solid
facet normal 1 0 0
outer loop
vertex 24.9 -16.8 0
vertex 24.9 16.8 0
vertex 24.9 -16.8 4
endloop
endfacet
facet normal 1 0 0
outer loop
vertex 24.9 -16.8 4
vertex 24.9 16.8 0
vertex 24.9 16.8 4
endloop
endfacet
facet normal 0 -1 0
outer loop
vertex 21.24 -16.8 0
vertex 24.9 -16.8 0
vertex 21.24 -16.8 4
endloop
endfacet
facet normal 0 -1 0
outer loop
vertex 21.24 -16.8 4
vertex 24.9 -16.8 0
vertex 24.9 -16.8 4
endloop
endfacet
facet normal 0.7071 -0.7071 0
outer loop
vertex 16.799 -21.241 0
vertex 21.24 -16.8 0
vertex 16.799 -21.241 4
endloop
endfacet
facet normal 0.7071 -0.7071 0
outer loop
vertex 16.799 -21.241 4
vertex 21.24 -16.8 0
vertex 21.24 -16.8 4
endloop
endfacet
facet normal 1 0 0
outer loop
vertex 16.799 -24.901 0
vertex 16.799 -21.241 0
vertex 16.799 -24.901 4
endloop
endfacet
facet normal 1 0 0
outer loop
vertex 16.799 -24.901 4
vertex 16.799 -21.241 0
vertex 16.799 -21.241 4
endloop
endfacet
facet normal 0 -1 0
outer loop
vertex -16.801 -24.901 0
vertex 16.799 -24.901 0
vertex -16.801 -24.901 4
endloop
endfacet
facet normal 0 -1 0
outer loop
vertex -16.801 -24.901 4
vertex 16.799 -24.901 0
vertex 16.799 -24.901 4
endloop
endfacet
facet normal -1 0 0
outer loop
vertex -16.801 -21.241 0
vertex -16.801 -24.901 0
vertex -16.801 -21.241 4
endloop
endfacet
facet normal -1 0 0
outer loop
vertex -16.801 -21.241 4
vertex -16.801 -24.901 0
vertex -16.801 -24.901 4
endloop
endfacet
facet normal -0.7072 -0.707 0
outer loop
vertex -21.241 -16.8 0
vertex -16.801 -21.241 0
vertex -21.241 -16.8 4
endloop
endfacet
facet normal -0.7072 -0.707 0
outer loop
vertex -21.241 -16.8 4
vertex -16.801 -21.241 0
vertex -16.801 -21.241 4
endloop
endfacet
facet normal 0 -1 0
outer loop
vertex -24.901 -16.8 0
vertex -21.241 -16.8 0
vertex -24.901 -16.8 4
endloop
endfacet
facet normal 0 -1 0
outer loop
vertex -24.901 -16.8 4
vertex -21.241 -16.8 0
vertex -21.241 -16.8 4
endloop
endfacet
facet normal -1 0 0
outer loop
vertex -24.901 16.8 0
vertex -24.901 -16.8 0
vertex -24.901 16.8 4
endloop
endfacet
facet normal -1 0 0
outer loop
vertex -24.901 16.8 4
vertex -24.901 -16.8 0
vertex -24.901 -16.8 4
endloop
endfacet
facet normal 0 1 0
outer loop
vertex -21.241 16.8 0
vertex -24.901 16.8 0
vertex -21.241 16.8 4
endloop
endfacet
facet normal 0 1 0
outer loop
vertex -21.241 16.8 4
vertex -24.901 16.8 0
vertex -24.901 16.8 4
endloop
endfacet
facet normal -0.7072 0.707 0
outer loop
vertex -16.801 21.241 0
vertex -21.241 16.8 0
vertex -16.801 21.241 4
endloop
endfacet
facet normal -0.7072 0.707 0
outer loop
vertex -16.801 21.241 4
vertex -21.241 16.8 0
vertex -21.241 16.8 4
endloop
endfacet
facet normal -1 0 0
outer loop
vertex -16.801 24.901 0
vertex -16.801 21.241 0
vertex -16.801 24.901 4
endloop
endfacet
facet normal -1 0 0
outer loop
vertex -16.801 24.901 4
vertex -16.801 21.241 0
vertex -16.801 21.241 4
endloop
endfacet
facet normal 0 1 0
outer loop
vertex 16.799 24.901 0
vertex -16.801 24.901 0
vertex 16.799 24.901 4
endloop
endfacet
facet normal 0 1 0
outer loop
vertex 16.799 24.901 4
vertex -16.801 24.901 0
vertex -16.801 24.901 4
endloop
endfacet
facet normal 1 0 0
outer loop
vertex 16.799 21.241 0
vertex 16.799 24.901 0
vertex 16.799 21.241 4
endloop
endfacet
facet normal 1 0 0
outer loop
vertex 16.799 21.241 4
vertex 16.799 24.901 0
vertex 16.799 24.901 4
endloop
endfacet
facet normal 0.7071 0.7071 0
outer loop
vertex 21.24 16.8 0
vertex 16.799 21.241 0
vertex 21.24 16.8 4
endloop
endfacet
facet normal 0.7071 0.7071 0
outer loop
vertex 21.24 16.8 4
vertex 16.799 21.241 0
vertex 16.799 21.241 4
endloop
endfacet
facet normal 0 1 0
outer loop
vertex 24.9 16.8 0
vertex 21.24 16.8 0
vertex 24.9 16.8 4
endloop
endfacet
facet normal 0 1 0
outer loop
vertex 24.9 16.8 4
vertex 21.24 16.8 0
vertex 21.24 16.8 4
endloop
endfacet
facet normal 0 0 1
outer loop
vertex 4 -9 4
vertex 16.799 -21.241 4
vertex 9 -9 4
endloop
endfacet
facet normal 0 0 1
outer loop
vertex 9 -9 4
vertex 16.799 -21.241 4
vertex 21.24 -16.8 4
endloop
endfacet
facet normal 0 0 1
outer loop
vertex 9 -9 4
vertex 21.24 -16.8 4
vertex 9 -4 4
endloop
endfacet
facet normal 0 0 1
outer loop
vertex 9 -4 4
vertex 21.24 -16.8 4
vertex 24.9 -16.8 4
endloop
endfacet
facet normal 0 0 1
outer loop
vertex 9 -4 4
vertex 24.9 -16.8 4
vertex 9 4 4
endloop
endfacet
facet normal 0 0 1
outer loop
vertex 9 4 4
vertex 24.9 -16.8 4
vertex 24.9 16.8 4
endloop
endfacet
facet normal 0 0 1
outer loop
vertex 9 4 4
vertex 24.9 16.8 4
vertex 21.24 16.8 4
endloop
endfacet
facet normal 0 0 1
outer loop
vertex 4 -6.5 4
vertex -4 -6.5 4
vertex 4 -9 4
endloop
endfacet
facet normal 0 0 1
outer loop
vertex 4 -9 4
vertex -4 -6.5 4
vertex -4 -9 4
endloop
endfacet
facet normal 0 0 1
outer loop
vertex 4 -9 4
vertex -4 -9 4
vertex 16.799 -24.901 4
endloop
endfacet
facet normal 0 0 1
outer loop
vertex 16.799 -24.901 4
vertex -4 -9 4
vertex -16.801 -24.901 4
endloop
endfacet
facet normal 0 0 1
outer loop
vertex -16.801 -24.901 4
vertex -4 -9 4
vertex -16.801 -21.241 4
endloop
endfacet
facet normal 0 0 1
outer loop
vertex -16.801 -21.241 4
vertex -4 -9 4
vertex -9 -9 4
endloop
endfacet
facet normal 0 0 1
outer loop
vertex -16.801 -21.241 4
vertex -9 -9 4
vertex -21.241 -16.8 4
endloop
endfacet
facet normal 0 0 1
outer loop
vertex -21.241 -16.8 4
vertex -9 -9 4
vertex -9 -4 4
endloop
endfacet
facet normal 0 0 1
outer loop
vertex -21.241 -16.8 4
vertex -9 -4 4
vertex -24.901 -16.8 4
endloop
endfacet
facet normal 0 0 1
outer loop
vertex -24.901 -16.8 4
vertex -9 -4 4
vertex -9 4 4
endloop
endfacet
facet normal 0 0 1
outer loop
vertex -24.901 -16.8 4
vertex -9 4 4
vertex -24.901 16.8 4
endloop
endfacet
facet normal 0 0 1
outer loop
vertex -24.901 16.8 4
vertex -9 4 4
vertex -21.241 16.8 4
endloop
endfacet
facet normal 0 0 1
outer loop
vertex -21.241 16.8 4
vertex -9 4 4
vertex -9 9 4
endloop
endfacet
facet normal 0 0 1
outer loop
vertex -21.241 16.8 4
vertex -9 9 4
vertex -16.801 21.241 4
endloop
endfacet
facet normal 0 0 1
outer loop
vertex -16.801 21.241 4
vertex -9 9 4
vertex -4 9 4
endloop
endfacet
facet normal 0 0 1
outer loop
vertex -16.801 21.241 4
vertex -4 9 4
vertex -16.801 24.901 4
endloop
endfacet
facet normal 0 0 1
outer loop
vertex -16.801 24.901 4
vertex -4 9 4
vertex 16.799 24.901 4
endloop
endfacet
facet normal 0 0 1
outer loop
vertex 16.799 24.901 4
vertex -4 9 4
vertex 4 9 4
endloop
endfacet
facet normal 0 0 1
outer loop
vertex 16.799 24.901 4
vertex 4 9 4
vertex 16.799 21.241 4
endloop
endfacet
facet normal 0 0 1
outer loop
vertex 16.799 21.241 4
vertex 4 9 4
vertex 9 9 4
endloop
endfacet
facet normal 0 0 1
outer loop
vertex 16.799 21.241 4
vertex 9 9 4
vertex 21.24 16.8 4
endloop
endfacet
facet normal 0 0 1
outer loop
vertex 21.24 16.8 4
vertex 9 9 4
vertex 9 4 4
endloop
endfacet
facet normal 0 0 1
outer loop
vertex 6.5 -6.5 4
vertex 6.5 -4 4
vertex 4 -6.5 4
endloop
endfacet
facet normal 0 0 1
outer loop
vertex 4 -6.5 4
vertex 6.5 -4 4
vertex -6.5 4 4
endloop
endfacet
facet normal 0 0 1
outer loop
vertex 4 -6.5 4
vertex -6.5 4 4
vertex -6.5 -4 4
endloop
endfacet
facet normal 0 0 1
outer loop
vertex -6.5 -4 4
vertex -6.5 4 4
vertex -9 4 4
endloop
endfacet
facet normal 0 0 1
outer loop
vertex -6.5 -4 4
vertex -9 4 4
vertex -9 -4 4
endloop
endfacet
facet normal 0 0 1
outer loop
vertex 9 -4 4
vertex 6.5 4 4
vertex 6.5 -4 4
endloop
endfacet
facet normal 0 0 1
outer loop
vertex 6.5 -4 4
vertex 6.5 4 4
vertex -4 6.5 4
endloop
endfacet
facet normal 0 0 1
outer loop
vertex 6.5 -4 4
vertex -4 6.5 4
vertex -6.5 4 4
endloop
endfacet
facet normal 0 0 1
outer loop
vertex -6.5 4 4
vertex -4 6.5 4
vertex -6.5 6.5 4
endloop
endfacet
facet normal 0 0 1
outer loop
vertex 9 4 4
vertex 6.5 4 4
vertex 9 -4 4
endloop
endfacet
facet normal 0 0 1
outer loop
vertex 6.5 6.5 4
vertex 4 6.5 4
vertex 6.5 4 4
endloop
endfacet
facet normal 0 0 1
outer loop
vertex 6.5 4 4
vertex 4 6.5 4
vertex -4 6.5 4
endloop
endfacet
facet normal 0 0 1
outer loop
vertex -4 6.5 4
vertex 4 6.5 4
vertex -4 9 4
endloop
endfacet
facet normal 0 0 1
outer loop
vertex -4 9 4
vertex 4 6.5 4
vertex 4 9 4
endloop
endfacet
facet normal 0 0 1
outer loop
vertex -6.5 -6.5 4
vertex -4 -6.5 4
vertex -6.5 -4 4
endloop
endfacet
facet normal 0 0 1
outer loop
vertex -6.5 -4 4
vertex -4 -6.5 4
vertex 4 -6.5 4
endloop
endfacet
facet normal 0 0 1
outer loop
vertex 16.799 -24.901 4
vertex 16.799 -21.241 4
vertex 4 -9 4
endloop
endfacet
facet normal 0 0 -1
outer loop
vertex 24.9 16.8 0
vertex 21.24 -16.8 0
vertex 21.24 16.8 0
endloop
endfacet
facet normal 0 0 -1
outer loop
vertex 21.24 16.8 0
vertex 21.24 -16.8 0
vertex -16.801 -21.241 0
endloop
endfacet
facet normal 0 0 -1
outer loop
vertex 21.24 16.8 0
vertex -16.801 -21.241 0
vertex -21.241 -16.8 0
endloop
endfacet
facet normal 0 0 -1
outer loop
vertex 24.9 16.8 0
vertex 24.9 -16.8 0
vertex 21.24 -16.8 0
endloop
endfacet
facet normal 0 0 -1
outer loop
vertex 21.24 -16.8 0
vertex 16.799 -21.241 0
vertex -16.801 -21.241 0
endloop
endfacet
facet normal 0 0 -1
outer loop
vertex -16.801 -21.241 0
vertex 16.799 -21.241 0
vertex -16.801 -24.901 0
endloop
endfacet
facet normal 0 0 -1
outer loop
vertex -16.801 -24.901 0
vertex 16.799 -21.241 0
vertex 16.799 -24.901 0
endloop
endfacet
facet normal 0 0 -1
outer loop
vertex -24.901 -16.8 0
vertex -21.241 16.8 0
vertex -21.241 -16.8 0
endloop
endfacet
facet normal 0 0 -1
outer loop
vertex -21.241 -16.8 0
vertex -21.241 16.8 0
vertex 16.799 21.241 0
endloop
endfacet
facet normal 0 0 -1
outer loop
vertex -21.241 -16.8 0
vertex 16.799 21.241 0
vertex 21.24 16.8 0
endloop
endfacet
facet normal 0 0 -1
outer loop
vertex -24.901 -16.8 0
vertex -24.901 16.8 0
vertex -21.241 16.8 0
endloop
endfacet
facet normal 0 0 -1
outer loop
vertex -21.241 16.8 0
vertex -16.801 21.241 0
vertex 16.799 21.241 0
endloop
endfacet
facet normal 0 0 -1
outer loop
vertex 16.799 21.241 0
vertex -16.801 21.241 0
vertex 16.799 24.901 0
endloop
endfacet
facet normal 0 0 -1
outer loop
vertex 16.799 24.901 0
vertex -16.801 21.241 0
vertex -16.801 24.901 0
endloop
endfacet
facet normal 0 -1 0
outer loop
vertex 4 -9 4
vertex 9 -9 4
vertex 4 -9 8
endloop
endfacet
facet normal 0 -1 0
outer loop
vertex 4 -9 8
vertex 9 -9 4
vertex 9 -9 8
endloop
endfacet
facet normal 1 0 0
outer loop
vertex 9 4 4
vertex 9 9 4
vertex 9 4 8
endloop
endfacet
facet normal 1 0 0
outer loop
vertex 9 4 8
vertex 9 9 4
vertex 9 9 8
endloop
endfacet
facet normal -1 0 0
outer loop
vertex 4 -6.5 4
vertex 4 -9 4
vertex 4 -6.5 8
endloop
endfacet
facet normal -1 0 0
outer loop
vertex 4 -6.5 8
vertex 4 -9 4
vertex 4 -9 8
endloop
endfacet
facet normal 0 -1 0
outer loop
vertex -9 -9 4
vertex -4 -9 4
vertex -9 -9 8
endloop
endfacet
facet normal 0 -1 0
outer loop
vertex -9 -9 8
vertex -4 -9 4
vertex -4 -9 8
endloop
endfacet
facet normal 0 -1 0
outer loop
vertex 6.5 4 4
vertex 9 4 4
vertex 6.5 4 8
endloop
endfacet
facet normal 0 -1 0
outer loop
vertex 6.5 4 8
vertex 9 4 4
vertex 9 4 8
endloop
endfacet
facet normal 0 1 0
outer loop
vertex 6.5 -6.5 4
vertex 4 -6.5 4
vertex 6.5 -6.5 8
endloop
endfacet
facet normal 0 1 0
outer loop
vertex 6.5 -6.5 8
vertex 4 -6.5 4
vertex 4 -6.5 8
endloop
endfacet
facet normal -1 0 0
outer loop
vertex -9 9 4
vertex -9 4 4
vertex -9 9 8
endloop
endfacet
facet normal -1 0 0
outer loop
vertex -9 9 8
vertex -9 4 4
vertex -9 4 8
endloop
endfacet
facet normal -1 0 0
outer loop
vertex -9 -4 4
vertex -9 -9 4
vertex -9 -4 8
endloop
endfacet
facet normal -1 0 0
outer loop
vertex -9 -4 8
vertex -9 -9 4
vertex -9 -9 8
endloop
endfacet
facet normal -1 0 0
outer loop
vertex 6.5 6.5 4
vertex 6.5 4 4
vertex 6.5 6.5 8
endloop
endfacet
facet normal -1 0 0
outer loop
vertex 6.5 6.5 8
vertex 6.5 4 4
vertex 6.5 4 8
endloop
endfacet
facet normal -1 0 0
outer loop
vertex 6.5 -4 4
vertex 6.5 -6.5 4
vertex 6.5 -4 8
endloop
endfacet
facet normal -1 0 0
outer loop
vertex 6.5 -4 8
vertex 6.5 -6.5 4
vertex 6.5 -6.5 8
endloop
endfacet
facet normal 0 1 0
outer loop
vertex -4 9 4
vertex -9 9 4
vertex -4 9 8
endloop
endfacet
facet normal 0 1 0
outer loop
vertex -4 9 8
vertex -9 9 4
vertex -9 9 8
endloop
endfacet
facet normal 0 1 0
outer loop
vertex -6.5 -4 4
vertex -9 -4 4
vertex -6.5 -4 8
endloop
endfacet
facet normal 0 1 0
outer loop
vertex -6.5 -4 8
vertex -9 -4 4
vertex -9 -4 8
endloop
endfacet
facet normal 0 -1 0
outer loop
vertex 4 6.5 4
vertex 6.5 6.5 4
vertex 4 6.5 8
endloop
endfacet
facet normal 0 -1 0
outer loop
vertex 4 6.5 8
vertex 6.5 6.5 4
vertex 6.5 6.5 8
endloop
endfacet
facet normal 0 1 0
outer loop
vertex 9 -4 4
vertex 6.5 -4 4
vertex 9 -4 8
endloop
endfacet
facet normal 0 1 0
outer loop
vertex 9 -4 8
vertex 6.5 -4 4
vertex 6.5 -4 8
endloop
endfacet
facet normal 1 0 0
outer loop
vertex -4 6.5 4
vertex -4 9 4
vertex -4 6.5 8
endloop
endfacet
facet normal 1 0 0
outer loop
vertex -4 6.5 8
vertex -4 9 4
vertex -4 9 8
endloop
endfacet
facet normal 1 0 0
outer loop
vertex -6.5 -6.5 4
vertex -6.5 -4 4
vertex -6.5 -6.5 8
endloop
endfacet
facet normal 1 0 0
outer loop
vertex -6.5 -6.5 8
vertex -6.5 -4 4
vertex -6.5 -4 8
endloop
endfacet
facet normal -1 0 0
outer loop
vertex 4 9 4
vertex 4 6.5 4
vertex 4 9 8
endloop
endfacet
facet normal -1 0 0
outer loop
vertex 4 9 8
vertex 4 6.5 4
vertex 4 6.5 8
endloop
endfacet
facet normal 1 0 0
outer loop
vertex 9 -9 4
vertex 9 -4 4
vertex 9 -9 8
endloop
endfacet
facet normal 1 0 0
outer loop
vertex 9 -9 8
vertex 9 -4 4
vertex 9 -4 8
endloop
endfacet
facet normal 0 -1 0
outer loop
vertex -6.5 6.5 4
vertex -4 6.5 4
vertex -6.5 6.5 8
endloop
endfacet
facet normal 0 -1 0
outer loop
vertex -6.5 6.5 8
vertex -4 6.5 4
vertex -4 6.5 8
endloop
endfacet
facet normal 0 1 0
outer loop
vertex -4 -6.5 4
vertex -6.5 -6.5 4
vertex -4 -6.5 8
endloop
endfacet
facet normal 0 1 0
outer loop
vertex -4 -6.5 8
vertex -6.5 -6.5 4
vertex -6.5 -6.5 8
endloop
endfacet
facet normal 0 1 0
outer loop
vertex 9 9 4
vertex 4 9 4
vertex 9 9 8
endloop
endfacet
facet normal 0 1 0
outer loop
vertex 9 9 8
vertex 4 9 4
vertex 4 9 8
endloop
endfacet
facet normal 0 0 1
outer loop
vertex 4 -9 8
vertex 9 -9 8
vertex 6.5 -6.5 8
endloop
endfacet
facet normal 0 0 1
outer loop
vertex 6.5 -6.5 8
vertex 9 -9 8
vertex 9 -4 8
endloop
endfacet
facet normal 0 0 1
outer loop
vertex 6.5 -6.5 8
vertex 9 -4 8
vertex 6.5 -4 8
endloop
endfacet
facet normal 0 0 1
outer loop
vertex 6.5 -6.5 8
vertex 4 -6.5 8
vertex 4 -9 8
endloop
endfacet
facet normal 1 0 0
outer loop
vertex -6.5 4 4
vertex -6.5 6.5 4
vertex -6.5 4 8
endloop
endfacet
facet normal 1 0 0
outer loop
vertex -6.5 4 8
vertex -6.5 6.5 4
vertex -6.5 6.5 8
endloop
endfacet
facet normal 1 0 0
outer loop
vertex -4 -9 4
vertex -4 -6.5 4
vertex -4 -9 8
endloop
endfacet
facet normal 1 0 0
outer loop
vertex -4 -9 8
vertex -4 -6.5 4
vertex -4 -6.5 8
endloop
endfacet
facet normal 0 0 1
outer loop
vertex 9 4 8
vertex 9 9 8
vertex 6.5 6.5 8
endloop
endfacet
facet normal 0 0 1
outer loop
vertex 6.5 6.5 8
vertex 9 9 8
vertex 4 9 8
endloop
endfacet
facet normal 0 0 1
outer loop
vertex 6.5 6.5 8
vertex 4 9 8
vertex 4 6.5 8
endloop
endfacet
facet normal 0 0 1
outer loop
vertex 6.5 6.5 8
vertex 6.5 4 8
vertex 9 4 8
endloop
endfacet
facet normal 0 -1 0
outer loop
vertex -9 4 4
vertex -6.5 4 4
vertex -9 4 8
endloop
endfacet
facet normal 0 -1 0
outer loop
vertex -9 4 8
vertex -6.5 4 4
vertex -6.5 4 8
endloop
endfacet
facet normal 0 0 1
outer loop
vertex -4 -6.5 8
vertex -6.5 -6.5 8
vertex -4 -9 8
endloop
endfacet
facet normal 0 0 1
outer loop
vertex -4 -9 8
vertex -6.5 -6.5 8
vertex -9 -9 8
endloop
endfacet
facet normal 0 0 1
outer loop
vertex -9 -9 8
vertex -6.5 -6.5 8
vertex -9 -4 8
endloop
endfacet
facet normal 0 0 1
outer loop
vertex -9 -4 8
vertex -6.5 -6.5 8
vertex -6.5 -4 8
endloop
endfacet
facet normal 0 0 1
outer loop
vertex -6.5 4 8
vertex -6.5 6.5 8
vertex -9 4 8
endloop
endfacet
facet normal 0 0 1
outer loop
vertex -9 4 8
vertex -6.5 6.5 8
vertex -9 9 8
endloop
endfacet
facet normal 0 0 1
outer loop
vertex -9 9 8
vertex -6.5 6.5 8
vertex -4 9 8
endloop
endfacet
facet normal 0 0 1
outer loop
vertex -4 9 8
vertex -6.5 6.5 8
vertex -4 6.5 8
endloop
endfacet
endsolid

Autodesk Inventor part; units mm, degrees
ref_plane "YZ Plane" through (0, 0, 0) normal (1, 0, 0) x (0, 1, 0)
ref_plane "XZ Plane" through (0, 0, 0) normal (0, 1, 0) x (-1, 0, 0)
ref_plane "XY Plane" through (0, 0, 0) normal (0, 0, 1) x (1, 0, 0)
sketch "草图1" plane through (0, 0, 0) normal (0, 0, 1) x (1, 0, 0)
  line L0 (24.9, 0) -> (24.9, 16.8)
  line L1 (24.9, 16.8) -> (21.24, 16.8)
  line L2 (21.24, 16.8) -> (16.7994, 21.2406)
  line L3 (16.7994, 21.2406) -> (16.7994, 24.9006)
  line L4 (16.7994, 24.9006) -> (-0.0006, 24.9006)
  line L5 (-0.0006, 24.9006) -> (-16.8006, 24.9006)
  line L6 (-16.8006, 24.9006) -> (-16.8006, 21.2406)
  line L7 (-16.8006, 21.2406) -> (-21.2413, 16.8)
  line L8 (-21.2413, 16.8) -> (-24.9013, 16.8)
  line L9 (-24.9013, 16.8) -> (-24.9013, 0)
  line L10 (-24.9013, 0) -> (-24.9013, -16.8)
  line L11 (-24.9013, -16.8) -> (-21.2413, -16.8)
  line L12 (-21.2413, -16.8) -> (-16.8006, -21.2406)
  line L13 (-16.8006, -21.2406) -> (-16.8006, -24.9006)
  line L14 (-16.8006, -24.9006) -> (-0.0006, -24.9006)
  line L15 (-0.0006, -24.9006) -> (16.7994, -24.9006)
  line L16 (16.7994, -24.9006) -> (16.7994, -21.2406)
  line L17 (16.7994, -21.2406) -> (21.24, -16.8)
  line L18 (21.24, -16.8) -> (24.9, -16.8)
  line L19 (24.9, -16.8) -> (24.9, 0)
  point P0 (0, 0)
extrude "拉伸1" add sketch "草图1" along normal blind 4
sketch "草图2" plane through (0, 0, 4) normal (0, 0, 1) x (1, 0, 0)
  line L0 (-6.5, -6.5) -> (6.5, -6.5)
  line L1 (6.5, -6.5) -> (6.5, 6.5)
  line L2 (6.5, 6.5) -> (-6.5, 6.5)
  line L3 (-6.5, 6.5) -> (-6.5, -6.5)
  line L4 (-6.5, -6.5) -> (6.5, 6.5) construction
  line L5 (6.5, -6.5) -> (-6.5, 6.5) construction
  line L6 (-6.5, -6.5) -> (6.5, -6.5) construction
  line L7 (-6.5, 6.5) -> (-4.5, 6.5)
  line L8 (-9, 4) -> (-4, 4)
  line L9 (-4, 4) -> (-4, 9)
  line L10 (-4, 9) -> (-9, 9)
  line L11 (-9, 9) -> (-9, 4)
  line L12 (-9, 4) -> (-4, 9) construction
  line L13 (-4, 4) -> (-9, 9) construction
  line L14 (9, 4) -> (4, 4)
  line L15 (4, 4) -> (4, 9)
  line L16 (4, 9) -> (9, 9)
  line L17 (9, 9) -> (9, 4)
  line L18 (9, 4) -> (4, 9) construction
  line L19 (4, 4) -> (9, 9) construction
  line L20 (-9, -9) -> (-4, -9)
  line L21 (-4, -9) -> (-4, -4)
  line L22 (-4, -4) -> (-9, -4)
  line L23 (-9, -4) -> (-9, -9)
  line L24 (-9, -9) -> (-4, -4) construction
  line L25 (-4, -9) -> (-9, -4) construction
  line L26 (4, -4) -> (9, -4)
  line L27 (9, -4) -> (9, -9)
  line L28 (9, -9) -> (4, -9)
  line L29 (4, -9) -> (4, -4)
  line L30 (4, -4) -> (9, -9) construction
  line L31 (9, -4) -> (4, -9) construction
  point P0 (0, 0)
  point P1 (-4, -6.5)
  point P2 (-6.5, -4)
  point P3 (6.5, -4)
  point P4 (4, -6.5)
  point P5 (4, 6.5)
  point P6 (6.5, 4)
  point P7 (-6.5, 4)
  point P8 (-4, 6.5)
extrude "拉伸2" add sketch "草图2" along normal blind 4 contours L0 L21 L20 L23 L22 L3 | L0 L1 L26 L27 L28 L29 | L8 L11 L10 L9 L2 L3 | L1 L2 L15 L16 L17 L14
equation "\"BendRadius\" = Thickness"
equation "\"BendReliefWidth\" = Thickness"
equation "\"BendReliefDepth\" = 0.5 * Thickness"
equation "\"CornerReliefSize\" = 4 * Thickness"
equation "\"MinimumRemnant\" = 2 * Thickness"
equation "\"TransitionRadius\" = BendRadius"
equation "\"JacobiRadiusSize\" = BendRadius"
equation "\"GapSize\" = Thickness"
equation "\"Thickness\" = 0.5"
properties part number "样品池"
